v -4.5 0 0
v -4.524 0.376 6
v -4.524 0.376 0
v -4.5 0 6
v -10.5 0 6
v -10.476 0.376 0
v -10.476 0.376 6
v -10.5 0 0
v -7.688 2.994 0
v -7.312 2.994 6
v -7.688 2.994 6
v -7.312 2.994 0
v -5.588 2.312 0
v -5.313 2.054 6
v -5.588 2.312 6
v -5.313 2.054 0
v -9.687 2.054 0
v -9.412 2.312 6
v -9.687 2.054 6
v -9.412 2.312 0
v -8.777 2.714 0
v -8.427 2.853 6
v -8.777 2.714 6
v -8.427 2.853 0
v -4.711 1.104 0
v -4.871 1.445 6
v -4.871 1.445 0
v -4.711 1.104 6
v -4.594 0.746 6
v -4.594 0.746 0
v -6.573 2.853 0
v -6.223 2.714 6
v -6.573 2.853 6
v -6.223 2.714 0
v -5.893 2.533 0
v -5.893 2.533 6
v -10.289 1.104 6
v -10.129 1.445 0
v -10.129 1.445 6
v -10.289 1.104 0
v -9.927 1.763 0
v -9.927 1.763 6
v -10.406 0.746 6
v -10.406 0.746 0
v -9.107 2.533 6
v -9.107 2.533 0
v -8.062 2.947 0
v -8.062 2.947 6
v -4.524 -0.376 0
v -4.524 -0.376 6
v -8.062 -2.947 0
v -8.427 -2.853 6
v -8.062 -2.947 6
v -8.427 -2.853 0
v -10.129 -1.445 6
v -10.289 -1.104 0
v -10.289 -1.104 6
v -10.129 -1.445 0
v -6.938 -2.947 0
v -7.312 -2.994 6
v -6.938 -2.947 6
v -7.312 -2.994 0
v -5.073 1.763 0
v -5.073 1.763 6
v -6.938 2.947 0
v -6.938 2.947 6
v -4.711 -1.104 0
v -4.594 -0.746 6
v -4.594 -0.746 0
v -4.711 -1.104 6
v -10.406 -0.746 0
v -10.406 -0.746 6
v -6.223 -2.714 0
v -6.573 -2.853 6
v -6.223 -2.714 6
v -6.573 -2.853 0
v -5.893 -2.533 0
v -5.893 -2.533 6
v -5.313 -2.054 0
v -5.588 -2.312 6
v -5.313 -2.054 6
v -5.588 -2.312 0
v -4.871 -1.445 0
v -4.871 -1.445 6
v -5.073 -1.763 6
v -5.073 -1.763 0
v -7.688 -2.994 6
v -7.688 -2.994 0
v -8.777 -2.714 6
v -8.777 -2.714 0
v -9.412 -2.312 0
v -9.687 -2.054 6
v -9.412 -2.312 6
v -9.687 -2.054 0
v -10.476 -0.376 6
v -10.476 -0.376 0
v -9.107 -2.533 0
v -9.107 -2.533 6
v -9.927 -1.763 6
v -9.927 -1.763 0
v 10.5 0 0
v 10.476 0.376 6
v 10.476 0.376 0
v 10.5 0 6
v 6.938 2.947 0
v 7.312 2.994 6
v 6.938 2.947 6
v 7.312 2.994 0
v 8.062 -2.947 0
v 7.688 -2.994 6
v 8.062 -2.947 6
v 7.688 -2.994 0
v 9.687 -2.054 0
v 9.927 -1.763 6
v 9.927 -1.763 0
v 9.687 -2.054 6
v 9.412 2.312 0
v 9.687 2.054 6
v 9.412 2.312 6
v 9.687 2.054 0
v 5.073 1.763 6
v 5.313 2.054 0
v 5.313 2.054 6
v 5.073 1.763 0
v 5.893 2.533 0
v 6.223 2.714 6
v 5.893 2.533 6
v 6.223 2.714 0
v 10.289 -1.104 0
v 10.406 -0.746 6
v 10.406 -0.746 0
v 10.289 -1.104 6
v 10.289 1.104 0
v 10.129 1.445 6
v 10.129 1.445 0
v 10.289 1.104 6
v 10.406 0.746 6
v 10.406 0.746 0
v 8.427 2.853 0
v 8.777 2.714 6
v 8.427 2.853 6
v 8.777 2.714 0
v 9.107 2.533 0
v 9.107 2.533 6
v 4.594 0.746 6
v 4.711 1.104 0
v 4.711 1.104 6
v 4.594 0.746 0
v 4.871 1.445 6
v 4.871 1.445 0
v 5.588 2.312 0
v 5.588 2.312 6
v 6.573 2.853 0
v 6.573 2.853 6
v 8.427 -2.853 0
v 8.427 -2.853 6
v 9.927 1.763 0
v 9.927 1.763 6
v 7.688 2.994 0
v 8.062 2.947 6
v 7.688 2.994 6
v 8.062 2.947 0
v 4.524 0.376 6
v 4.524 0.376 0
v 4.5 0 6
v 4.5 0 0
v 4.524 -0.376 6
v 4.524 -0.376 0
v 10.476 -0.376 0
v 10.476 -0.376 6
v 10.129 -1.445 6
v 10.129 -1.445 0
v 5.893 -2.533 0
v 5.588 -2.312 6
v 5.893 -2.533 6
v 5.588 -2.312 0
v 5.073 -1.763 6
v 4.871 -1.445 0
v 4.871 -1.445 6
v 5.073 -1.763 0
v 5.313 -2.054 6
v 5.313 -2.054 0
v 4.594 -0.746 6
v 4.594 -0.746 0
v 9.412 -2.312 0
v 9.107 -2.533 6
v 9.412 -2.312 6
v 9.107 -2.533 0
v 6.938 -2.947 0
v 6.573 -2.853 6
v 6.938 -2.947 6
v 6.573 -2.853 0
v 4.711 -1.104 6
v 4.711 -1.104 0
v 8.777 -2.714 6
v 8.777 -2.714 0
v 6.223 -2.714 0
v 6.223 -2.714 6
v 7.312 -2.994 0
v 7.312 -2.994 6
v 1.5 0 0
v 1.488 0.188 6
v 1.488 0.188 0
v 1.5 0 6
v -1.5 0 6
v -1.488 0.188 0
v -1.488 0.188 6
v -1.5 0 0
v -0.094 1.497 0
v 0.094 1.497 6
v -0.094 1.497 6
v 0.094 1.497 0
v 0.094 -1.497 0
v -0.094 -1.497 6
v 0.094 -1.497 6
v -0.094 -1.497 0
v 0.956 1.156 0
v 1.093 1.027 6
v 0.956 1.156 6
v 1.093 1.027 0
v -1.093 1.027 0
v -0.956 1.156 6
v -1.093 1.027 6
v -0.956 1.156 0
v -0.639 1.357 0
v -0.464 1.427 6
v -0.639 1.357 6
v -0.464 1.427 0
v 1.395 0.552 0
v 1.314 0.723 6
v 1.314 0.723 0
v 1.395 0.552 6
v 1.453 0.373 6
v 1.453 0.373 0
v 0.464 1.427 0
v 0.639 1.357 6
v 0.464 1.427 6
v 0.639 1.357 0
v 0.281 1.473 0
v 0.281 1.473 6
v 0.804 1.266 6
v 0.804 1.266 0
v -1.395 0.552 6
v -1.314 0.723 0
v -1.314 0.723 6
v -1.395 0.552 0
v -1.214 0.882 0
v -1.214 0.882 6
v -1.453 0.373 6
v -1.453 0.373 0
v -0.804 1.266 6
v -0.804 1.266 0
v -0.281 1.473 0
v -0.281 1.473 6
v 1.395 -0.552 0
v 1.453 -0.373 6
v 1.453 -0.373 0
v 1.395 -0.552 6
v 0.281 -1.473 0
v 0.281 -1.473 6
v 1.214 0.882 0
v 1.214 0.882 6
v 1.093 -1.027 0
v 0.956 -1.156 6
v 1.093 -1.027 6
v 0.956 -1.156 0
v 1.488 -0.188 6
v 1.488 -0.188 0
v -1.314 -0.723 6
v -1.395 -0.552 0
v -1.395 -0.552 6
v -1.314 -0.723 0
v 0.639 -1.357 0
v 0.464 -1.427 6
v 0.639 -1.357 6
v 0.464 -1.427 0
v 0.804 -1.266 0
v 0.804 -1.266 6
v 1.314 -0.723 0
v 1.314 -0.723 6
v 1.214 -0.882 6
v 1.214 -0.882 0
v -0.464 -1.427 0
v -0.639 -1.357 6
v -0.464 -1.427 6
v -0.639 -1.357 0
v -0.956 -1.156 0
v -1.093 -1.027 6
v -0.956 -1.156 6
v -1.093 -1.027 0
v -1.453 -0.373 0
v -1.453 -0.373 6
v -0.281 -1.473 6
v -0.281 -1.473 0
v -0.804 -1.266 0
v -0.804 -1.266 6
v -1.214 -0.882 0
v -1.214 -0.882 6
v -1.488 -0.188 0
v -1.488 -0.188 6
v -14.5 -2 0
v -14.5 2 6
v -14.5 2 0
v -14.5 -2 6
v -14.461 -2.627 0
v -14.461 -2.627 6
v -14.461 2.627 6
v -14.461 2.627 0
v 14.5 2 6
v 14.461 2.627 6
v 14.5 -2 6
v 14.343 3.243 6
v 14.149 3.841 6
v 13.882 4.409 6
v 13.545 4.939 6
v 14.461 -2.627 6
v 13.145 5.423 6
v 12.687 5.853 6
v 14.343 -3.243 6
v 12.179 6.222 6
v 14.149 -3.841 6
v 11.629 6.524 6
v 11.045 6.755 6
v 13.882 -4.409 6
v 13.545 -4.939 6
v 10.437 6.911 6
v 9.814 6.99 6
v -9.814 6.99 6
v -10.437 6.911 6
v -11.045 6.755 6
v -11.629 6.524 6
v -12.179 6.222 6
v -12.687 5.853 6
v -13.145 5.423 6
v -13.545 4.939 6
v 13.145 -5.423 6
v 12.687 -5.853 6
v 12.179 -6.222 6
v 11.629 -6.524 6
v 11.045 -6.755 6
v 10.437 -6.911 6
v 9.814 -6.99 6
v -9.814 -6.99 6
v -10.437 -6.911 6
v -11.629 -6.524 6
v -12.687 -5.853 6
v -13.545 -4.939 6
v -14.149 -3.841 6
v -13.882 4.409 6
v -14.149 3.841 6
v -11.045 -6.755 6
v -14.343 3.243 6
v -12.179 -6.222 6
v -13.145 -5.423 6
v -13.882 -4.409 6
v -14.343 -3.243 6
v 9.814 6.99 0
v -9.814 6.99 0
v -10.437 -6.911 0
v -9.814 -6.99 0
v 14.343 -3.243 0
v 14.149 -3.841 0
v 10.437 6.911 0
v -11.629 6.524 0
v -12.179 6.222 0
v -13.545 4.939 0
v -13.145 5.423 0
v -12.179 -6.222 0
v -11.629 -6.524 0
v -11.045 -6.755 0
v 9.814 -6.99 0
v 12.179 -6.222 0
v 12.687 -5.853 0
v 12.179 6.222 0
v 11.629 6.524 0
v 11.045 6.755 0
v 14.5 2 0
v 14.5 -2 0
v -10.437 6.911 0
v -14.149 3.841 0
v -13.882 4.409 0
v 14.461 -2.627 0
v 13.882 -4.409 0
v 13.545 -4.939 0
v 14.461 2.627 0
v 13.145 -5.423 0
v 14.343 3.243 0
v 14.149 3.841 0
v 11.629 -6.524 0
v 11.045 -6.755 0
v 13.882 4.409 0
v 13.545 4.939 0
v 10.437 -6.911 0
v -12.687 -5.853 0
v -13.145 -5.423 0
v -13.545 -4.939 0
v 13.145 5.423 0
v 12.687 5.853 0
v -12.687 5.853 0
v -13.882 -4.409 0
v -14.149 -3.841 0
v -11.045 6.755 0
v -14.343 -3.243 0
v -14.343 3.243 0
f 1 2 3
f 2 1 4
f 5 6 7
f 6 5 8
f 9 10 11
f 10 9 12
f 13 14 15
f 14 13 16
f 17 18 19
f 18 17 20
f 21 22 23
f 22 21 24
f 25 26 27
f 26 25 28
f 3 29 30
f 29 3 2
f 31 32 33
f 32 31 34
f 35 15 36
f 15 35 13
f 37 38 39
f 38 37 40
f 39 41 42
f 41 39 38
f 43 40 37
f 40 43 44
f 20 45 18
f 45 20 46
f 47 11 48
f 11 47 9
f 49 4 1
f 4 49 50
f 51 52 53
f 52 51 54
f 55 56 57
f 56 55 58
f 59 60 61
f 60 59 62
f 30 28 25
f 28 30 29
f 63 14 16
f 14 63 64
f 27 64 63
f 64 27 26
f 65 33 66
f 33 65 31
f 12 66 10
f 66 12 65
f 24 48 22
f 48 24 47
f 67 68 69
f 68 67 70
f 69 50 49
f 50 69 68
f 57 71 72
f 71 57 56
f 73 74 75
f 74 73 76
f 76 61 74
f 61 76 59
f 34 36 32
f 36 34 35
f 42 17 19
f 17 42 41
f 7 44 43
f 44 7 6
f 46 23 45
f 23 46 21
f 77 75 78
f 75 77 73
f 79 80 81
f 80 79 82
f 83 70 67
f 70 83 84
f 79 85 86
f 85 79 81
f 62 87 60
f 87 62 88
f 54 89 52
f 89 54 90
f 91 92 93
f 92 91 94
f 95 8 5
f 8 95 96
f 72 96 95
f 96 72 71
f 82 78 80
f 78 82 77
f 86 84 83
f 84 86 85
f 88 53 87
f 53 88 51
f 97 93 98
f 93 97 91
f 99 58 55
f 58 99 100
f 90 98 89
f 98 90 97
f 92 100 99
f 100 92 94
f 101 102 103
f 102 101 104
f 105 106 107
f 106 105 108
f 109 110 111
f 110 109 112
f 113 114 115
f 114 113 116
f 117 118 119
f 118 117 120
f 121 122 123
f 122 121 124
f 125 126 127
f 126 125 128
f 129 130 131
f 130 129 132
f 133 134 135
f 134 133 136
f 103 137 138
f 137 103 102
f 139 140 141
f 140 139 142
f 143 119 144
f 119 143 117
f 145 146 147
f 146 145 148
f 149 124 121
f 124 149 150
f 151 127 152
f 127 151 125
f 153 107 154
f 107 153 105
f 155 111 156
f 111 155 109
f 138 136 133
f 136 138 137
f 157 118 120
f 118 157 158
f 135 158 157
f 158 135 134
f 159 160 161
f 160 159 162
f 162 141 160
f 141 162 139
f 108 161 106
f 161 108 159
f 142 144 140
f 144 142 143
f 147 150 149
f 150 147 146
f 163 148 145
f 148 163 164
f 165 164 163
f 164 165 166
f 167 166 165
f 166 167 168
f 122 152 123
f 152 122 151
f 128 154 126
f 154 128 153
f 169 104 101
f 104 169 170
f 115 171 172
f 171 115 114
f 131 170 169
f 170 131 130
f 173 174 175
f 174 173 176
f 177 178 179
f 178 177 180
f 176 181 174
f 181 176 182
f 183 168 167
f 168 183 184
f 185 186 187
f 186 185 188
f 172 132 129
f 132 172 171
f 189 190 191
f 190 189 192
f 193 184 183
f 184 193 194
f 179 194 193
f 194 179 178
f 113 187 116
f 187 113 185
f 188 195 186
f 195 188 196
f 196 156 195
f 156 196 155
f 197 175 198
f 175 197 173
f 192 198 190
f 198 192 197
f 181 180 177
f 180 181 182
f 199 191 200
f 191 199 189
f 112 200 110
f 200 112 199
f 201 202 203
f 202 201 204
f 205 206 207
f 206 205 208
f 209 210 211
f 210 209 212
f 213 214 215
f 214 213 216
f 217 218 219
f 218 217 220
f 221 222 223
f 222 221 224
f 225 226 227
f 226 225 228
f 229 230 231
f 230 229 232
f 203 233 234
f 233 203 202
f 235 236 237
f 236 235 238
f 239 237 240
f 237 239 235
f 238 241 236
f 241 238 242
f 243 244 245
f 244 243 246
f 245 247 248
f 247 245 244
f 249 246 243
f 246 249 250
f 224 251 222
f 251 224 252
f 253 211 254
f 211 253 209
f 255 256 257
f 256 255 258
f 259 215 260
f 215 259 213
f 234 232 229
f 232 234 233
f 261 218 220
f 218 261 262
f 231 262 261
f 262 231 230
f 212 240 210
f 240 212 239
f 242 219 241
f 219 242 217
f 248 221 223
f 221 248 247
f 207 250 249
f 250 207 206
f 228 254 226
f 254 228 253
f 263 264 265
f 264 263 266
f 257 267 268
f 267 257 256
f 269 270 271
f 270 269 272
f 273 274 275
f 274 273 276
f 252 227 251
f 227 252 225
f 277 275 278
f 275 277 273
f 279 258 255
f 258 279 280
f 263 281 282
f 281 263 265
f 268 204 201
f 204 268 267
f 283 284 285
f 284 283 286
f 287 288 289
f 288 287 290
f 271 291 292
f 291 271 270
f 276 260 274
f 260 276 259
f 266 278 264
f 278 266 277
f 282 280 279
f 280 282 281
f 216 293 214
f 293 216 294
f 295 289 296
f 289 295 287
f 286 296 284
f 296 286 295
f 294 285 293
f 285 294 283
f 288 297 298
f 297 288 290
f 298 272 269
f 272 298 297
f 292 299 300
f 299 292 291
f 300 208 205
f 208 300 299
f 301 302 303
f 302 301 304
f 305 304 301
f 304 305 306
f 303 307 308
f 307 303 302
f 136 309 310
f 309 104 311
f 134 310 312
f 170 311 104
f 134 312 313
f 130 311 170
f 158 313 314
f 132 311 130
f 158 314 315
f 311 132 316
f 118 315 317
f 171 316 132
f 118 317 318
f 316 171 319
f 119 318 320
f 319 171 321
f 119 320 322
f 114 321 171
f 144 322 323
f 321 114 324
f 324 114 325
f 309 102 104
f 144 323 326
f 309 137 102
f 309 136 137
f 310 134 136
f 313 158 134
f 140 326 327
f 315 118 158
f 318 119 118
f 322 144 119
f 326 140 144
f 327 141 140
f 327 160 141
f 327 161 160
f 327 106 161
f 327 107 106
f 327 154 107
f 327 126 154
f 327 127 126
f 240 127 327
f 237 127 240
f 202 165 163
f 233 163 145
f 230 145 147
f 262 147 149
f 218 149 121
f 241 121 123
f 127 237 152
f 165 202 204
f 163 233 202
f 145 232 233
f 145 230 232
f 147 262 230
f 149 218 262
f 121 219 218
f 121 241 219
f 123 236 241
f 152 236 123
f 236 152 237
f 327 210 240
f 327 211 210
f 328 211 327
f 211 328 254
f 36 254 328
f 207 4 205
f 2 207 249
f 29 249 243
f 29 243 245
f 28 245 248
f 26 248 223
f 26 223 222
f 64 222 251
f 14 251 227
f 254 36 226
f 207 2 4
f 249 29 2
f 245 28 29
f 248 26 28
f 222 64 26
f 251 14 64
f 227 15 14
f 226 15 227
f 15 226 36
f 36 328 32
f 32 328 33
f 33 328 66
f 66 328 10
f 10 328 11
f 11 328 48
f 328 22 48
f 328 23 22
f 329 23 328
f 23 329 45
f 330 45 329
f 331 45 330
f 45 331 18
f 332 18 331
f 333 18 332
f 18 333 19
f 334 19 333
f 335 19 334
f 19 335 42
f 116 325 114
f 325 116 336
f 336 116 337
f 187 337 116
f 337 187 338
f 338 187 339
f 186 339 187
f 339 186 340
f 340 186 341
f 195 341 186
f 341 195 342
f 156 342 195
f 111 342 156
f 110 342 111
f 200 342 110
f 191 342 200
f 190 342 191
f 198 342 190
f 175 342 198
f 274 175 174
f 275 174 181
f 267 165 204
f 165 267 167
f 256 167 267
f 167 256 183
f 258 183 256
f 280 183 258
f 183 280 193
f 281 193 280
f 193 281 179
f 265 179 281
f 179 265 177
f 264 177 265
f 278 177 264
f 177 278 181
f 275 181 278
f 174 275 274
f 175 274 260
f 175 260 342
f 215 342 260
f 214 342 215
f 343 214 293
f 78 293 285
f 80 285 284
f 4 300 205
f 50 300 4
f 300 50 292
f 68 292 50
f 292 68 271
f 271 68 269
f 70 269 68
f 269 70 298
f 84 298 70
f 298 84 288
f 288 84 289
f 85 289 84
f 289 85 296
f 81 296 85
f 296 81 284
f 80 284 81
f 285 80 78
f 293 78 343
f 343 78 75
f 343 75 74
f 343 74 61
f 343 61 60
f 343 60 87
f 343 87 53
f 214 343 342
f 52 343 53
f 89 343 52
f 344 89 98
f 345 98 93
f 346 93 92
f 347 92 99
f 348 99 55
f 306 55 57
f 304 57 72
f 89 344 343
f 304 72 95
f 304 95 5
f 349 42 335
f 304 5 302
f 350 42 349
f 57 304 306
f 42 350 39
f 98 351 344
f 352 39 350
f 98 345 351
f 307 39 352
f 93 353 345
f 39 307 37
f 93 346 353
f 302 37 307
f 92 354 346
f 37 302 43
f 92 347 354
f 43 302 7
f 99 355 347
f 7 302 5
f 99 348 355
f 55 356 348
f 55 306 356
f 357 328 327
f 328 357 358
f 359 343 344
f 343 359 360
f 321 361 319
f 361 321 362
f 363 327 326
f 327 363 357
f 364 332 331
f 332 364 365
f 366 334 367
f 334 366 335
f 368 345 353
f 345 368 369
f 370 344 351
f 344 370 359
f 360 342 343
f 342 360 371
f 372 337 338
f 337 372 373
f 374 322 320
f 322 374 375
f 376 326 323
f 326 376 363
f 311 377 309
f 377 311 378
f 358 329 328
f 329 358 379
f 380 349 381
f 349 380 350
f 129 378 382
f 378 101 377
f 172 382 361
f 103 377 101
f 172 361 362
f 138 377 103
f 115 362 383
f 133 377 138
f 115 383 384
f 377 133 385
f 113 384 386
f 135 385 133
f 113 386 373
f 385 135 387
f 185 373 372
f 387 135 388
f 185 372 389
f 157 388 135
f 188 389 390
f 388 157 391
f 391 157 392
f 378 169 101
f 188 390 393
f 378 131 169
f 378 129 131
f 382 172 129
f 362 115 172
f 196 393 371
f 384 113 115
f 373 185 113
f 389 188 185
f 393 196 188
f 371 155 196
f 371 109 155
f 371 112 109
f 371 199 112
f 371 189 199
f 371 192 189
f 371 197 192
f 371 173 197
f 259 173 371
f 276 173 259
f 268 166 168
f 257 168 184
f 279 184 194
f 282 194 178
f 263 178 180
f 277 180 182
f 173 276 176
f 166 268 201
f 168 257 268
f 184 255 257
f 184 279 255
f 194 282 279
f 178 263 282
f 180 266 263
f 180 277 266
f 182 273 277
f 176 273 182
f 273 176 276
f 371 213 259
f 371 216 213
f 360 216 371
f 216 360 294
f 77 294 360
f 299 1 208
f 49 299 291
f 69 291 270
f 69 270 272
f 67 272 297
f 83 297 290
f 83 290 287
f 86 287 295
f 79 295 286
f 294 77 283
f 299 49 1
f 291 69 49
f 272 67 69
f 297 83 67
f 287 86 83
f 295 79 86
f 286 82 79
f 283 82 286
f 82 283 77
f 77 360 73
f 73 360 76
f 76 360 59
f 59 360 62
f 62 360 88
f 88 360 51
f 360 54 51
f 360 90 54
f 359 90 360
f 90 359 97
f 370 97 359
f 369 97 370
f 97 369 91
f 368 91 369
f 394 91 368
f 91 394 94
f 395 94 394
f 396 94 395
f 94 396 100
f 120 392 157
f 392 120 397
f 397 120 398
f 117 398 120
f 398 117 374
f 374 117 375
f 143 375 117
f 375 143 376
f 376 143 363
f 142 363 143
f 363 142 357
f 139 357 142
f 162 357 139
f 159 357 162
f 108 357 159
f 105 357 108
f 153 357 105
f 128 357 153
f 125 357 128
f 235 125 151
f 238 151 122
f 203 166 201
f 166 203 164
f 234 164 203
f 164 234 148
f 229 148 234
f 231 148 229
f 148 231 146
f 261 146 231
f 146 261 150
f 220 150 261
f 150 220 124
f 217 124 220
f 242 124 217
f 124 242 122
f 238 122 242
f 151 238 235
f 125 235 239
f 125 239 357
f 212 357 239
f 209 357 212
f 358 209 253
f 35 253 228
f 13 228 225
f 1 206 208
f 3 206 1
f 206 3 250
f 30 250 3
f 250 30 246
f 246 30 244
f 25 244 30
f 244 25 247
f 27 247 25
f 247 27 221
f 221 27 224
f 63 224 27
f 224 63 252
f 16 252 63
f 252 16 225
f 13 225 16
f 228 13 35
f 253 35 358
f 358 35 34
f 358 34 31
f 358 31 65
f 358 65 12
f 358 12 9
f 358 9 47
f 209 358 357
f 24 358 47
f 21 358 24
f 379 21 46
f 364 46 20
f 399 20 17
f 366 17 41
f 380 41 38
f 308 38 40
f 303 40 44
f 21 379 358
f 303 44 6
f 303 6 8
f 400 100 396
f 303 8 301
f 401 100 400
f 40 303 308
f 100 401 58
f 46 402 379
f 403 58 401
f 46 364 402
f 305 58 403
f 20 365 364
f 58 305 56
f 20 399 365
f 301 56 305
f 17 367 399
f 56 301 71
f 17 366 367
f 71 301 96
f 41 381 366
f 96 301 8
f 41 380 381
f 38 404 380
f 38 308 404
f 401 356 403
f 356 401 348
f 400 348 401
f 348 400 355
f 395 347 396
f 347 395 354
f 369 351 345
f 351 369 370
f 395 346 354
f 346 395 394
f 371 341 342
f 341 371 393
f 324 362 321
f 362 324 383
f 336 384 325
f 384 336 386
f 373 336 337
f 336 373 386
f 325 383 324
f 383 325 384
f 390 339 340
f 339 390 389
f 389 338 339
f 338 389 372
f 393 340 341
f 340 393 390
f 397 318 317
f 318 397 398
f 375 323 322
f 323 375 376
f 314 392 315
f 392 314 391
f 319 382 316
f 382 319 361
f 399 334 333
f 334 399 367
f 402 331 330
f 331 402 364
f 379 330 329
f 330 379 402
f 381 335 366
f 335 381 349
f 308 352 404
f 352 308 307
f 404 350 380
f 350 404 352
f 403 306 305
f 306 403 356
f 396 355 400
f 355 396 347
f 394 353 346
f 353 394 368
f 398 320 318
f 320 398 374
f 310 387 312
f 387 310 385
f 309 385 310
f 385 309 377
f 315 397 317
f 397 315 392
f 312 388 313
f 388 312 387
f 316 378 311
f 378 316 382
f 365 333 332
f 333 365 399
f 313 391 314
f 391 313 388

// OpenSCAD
$fn = 50;


difference() {
	union() {
		hull() {
			translate(v = [-9.5000000000, 2.0000000000, 0]) {
				cylinder(h = 6, r = 5);
			}
			translate(v = [9.5000000000, 2.0000000000, 0]) {
				cylinder(h = 6, r = 5);
			}
			translate(v = [-9.5000000000, -2.0000000000, 0]) {
				cylinder(h = 6, r = 5);
			}
			translate(v = [9.5000000000, -2.0000000000, 0]) {
				cylinder(h = 6, r = 5);
			}
		}
	}
	union() {
		translate(v = [-7.5000000000, 0.0000000000, 0]) {
			translate(v = [0, 0, -100]) {
				cylinder(h = 200, r = 3.0000000000);
			}
		}
		translate(v = [7.5000000000, 0.0000000000, 0]) {
			translate(v = [0, 0, -100]) {
				cylinder(h = 200, r = 3.0000000000);
			}
		}
		translate(v = [-7.5000000000, 0.0000000000, 0]) {
			translate(v = [0, 0, -100]) {
				cylinder(h = 200, r = 1.5000000000);
			}
		}
		translate(v = [0, 0, -100]) {
			cylinder(h = 200, r = 1.5000000000);
		}
		translate(v = [7.5000000000, 0.0000000000, 0]) {
			translate(v = [0, 0, -100]) {
				cylinder(h = 200, r = 1.5000000000);
			}
		}
	}
}
